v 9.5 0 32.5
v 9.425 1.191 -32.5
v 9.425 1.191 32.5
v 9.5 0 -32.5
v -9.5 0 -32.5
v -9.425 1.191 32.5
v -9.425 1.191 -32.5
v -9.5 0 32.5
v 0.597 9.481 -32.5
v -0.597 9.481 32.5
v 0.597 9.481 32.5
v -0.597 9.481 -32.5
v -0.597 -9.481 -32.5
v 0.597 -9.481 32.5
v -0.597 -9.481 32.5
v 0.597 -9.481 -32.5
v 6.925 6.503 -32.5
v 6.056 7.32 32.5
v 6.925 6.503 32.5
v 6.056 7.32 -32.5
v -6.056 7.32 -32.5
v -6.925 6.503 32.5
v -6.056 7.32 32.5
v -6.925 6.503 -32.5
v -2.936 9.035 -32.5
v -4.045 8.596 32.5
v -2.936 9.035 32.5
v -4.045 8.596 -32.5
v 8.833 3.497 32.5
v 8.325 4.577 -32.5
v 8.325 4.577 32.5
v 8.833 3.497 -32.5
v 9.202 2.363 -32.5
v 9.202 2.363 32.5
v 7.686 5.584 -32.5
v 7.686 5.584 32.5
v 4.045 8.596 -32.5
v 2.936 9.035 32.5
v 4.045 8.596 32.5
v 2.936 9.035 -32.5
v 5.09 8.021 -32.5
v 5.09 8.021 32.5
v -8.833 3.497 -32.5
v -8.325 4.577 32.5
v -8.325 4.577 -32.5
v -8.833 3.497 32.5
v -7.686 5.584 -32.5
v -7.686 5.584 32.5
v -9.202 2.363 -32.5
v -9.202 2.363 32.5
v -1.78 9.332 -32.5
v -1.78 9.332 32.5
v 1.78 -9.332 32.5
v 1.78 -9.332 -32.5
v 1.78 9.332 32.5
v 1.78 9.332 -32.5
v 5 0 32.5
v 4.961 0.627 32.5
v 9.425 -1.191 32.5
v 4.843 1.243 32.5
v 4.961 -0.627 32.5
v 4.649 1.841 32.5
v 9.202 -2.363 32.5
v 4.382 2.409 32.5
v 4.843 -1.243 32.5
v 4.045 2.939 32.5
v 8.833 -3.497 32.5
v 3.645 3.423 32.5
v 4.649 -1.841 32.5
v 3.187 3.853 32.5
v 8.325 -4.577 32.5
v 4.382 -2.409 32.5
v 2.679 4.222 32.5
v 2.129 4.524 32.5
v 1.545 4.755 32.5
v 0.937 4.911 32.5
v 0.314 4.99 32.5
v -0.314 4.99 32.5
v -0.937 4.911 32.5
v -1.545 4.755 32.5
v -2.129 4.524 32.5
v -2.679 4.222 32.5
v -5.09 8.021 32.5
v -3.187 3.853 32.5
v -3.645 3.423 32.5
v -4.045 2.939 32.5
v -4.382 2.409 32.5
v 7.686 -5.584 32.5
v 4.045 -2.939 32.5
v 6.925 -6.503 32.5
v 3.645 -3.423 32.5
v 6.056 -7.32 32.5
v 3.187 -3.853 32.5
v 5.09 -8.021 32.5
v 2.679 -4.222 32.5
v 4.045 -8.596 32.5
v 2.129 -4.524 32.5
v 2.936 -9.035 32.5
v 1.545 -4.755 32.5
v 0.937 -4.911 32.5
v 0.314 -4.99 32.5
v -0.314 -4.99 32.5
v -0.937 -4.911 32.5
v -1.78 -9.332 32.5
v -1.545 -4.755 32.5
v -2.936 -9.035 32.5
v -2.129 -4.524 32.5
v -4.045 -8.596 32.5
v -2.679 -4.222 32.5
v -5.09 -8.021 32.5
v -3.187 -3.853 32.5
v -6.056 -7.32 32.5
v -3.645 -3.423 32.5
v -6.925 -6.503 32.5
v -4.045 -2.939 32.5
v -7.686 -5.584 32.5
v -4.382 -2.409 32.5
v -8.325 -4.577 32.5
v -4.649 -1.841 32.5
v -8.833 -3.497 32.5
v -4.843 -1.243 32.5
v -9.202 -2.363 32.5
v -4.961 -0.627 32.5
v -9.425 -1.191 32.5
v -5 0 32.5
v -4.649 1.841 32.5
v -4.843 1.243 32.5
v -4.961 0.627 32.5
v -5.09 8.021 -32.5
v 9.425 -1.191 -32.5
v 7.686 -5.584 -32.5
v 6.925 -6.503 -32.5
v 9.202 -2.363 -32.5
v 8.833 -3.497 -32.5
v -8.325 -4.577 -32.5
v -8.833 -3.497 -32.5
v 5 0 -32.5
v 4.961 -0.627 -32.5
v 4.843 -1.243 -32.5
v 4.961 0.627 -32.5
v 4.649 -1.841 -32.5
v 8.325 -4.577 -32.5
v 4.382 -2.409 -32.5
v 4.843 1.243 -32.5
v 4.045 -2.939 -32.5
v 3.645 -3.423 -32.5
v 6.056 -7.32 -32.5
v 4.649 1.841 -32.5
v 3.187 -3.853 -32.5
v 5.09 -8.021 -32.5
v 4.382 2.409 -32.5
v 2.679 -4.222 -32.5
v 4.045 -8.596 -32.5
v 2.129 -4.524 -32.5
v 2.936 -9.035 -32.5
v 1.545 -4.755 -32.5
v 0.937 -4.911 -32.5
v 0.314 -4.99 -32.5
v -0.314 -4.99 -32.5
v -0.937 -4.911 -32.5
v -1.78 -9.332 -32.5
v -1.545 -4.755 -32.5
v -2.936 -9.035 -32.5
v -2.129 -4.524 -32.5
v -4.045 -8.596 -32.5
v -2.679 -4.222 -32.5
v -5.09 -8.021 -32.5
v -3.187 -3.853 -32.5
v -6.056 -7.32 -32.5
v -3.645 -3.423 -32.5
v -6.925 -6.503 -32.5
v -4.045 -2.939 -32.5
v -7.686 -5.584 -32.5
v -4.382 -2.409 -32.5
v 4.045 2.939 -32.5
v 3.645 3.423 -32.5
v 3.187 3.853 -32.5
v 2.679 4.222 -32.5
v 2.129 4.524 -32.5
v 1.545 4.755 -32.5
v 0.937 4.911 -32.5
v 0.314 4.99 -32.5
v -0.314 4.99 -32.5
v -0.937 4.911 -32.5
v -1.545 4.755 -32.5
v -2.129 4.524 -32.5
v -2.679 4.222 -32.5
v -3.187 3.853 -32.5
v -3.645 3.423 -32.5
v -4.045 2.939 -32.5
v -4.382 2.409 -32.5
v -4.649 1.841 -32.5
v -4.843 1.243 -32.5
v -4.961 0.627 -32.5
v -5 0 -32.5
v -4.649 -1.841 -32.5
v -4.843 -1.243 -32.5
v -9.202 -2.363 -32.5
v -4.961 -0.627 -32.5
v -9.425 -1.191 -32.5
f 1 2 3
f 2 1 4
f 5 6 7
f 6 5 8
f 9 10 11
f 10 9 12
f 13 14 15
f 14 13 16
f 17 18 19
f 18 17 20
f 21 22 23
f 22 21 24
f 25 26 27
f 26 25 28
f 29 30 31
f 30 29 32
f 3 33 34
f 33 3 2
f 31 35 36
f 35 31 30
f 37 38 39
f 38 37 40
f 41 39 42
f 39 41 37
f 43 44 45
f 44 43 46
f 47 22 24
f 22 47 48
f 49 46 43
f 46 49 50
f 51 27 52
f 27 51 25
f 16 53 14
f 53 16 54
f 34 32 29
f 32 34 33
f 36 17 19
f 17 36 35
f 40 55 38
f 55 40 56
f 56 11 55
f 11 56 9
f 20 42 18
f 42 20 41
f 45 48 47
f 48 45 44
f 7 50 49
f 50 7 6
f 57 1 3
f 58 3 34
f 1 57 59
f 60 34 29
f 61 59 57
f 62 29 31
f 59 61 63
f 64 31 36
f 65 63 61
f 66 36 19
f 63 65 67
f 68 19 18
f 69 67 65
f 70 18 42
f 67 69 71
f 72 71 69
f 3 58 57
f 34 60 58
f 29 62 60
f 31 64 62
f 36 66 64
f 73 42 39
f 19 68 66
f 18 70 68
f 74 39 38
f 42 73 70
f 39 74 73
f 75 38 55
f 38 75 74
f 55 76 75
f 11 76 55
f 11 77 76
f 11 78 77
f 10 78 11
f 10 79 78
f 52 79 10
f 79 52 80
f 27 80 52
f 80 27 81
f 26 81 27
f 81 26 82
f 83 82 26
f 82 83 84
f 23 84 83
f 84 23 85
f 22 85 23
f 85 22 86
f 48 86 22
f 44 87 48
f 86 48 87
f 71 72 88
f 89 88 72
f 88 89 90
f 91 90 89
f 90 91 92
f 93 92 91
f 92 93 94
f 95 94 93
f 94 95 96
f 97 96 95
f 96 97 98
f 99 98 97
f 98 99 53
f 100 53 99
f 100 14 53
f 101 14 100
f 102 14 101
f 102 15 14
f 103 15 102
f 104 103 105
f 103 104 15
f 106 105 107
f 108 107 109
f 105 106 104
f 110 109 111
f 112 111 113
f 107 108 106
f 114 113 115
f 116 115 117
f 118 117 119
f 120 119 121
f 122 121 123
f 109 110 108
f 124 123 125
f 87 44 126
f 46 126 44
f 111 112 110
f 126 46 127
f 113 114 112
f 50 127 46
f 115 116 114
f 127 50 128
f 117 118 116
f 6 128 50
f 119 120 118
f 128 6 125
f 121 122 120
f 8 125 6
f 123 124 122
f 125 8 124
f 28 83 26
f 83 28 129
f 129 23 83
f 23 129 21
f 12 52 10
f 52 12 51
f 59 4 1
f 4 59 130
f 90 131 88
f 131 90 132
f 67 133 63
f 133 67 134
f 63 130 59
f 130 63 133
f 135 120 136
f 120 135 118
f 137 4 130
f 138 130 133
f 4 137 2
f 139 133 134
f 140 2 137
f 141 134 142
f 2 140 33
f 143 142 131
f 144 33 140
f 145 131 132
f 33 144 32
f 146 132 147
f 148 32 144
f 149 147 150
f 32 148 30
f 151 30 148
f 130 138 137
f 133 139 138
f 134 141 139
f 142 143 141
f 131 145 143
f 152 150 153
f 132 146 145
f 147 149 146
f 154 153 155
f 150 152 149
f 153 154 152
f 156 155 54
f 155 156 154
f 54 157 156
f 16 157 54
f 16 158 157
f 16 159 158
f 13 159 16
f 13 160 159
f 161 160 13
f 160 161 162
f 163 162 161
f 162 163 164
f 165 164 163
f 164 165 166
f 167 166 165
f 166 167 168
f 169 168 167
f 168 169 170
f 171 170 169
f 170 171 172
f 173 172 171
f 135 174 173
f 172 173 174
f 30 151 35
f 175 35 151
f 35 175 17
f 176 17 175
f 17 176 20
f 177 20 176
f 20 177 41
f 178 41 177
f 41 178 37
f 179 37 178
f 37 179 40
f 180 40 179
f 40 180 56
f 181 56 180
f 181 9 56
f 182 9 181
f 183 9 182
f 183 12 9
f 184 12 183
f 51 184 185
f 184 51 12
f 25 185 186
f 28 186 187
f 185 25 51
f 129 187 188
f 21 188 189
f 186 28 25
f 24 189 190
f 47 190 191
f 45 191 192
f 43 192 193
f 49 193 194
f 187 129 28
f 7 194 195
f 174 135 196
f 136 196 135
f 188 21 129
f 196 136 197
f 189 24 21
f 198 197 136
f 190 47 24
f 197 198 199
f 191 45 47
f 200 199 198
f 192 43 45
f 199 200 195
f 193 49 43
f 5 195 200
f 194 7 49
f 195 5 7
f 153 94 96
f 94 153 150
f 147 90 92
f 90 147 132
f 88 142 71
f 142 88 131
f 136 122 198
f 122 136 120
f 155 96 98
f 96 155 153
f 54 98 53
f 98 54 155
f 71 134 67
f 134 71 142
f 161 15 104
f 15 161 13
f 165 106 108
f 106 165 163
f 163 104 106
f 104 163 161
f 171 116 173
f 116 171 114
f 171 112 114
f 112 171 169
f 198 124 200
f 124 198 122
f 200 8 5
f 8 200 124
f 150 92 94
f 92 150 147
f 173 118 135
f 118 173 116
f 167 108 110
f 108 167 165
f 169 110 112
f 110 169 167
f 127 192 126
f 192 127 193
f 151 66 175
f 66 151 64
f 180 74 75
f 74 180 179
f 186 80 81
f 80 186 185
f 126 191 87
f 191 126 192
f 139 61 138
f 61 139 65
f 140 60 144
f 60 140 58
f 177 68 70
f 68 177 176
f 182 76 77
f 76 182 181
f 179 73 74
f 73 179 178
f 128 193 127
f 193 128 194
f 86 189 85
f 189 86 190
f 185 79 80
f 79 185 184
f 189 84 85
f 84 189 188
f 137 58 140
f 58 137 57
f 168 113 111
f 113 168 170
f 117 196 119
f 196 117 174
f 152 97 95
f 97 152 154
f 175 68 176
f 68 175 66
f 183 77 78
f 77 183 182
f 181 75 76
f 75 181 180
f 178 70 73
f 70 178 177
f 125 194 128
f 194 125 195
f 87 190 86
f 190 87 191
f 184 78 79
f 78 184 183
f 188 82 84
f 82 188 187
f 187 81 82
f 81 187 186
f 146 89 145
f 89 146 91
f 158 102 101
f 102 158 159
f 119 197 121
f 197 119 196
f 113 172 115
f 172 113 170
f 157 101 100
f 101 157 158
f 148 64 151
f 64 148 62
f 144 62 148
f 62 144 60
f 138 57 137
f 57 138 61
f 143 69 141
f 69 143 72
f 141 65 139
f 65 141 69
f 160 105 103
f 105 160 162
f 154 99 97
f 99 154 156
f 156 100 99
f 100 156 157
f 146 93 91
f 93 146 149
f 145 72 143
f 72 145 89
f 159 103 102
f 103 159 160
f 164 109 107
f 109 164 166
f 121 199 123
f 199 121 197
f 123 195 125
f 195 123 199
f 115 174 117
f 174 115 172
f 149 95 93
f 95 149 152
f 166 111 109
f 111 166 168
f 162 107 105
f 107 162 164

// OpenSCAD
$fn = 50;


difference() {
	union() {
		translate(v = [0, 0, -32.5000000000]) {
			cylinder(h = 65, r = 9.5000000000);
		}
	}
	union() {
		translate(v = [0, 0, -100.0000000000]) {
			cylinder(h = 200, r = 5.0000000000);
		}
	}
}
